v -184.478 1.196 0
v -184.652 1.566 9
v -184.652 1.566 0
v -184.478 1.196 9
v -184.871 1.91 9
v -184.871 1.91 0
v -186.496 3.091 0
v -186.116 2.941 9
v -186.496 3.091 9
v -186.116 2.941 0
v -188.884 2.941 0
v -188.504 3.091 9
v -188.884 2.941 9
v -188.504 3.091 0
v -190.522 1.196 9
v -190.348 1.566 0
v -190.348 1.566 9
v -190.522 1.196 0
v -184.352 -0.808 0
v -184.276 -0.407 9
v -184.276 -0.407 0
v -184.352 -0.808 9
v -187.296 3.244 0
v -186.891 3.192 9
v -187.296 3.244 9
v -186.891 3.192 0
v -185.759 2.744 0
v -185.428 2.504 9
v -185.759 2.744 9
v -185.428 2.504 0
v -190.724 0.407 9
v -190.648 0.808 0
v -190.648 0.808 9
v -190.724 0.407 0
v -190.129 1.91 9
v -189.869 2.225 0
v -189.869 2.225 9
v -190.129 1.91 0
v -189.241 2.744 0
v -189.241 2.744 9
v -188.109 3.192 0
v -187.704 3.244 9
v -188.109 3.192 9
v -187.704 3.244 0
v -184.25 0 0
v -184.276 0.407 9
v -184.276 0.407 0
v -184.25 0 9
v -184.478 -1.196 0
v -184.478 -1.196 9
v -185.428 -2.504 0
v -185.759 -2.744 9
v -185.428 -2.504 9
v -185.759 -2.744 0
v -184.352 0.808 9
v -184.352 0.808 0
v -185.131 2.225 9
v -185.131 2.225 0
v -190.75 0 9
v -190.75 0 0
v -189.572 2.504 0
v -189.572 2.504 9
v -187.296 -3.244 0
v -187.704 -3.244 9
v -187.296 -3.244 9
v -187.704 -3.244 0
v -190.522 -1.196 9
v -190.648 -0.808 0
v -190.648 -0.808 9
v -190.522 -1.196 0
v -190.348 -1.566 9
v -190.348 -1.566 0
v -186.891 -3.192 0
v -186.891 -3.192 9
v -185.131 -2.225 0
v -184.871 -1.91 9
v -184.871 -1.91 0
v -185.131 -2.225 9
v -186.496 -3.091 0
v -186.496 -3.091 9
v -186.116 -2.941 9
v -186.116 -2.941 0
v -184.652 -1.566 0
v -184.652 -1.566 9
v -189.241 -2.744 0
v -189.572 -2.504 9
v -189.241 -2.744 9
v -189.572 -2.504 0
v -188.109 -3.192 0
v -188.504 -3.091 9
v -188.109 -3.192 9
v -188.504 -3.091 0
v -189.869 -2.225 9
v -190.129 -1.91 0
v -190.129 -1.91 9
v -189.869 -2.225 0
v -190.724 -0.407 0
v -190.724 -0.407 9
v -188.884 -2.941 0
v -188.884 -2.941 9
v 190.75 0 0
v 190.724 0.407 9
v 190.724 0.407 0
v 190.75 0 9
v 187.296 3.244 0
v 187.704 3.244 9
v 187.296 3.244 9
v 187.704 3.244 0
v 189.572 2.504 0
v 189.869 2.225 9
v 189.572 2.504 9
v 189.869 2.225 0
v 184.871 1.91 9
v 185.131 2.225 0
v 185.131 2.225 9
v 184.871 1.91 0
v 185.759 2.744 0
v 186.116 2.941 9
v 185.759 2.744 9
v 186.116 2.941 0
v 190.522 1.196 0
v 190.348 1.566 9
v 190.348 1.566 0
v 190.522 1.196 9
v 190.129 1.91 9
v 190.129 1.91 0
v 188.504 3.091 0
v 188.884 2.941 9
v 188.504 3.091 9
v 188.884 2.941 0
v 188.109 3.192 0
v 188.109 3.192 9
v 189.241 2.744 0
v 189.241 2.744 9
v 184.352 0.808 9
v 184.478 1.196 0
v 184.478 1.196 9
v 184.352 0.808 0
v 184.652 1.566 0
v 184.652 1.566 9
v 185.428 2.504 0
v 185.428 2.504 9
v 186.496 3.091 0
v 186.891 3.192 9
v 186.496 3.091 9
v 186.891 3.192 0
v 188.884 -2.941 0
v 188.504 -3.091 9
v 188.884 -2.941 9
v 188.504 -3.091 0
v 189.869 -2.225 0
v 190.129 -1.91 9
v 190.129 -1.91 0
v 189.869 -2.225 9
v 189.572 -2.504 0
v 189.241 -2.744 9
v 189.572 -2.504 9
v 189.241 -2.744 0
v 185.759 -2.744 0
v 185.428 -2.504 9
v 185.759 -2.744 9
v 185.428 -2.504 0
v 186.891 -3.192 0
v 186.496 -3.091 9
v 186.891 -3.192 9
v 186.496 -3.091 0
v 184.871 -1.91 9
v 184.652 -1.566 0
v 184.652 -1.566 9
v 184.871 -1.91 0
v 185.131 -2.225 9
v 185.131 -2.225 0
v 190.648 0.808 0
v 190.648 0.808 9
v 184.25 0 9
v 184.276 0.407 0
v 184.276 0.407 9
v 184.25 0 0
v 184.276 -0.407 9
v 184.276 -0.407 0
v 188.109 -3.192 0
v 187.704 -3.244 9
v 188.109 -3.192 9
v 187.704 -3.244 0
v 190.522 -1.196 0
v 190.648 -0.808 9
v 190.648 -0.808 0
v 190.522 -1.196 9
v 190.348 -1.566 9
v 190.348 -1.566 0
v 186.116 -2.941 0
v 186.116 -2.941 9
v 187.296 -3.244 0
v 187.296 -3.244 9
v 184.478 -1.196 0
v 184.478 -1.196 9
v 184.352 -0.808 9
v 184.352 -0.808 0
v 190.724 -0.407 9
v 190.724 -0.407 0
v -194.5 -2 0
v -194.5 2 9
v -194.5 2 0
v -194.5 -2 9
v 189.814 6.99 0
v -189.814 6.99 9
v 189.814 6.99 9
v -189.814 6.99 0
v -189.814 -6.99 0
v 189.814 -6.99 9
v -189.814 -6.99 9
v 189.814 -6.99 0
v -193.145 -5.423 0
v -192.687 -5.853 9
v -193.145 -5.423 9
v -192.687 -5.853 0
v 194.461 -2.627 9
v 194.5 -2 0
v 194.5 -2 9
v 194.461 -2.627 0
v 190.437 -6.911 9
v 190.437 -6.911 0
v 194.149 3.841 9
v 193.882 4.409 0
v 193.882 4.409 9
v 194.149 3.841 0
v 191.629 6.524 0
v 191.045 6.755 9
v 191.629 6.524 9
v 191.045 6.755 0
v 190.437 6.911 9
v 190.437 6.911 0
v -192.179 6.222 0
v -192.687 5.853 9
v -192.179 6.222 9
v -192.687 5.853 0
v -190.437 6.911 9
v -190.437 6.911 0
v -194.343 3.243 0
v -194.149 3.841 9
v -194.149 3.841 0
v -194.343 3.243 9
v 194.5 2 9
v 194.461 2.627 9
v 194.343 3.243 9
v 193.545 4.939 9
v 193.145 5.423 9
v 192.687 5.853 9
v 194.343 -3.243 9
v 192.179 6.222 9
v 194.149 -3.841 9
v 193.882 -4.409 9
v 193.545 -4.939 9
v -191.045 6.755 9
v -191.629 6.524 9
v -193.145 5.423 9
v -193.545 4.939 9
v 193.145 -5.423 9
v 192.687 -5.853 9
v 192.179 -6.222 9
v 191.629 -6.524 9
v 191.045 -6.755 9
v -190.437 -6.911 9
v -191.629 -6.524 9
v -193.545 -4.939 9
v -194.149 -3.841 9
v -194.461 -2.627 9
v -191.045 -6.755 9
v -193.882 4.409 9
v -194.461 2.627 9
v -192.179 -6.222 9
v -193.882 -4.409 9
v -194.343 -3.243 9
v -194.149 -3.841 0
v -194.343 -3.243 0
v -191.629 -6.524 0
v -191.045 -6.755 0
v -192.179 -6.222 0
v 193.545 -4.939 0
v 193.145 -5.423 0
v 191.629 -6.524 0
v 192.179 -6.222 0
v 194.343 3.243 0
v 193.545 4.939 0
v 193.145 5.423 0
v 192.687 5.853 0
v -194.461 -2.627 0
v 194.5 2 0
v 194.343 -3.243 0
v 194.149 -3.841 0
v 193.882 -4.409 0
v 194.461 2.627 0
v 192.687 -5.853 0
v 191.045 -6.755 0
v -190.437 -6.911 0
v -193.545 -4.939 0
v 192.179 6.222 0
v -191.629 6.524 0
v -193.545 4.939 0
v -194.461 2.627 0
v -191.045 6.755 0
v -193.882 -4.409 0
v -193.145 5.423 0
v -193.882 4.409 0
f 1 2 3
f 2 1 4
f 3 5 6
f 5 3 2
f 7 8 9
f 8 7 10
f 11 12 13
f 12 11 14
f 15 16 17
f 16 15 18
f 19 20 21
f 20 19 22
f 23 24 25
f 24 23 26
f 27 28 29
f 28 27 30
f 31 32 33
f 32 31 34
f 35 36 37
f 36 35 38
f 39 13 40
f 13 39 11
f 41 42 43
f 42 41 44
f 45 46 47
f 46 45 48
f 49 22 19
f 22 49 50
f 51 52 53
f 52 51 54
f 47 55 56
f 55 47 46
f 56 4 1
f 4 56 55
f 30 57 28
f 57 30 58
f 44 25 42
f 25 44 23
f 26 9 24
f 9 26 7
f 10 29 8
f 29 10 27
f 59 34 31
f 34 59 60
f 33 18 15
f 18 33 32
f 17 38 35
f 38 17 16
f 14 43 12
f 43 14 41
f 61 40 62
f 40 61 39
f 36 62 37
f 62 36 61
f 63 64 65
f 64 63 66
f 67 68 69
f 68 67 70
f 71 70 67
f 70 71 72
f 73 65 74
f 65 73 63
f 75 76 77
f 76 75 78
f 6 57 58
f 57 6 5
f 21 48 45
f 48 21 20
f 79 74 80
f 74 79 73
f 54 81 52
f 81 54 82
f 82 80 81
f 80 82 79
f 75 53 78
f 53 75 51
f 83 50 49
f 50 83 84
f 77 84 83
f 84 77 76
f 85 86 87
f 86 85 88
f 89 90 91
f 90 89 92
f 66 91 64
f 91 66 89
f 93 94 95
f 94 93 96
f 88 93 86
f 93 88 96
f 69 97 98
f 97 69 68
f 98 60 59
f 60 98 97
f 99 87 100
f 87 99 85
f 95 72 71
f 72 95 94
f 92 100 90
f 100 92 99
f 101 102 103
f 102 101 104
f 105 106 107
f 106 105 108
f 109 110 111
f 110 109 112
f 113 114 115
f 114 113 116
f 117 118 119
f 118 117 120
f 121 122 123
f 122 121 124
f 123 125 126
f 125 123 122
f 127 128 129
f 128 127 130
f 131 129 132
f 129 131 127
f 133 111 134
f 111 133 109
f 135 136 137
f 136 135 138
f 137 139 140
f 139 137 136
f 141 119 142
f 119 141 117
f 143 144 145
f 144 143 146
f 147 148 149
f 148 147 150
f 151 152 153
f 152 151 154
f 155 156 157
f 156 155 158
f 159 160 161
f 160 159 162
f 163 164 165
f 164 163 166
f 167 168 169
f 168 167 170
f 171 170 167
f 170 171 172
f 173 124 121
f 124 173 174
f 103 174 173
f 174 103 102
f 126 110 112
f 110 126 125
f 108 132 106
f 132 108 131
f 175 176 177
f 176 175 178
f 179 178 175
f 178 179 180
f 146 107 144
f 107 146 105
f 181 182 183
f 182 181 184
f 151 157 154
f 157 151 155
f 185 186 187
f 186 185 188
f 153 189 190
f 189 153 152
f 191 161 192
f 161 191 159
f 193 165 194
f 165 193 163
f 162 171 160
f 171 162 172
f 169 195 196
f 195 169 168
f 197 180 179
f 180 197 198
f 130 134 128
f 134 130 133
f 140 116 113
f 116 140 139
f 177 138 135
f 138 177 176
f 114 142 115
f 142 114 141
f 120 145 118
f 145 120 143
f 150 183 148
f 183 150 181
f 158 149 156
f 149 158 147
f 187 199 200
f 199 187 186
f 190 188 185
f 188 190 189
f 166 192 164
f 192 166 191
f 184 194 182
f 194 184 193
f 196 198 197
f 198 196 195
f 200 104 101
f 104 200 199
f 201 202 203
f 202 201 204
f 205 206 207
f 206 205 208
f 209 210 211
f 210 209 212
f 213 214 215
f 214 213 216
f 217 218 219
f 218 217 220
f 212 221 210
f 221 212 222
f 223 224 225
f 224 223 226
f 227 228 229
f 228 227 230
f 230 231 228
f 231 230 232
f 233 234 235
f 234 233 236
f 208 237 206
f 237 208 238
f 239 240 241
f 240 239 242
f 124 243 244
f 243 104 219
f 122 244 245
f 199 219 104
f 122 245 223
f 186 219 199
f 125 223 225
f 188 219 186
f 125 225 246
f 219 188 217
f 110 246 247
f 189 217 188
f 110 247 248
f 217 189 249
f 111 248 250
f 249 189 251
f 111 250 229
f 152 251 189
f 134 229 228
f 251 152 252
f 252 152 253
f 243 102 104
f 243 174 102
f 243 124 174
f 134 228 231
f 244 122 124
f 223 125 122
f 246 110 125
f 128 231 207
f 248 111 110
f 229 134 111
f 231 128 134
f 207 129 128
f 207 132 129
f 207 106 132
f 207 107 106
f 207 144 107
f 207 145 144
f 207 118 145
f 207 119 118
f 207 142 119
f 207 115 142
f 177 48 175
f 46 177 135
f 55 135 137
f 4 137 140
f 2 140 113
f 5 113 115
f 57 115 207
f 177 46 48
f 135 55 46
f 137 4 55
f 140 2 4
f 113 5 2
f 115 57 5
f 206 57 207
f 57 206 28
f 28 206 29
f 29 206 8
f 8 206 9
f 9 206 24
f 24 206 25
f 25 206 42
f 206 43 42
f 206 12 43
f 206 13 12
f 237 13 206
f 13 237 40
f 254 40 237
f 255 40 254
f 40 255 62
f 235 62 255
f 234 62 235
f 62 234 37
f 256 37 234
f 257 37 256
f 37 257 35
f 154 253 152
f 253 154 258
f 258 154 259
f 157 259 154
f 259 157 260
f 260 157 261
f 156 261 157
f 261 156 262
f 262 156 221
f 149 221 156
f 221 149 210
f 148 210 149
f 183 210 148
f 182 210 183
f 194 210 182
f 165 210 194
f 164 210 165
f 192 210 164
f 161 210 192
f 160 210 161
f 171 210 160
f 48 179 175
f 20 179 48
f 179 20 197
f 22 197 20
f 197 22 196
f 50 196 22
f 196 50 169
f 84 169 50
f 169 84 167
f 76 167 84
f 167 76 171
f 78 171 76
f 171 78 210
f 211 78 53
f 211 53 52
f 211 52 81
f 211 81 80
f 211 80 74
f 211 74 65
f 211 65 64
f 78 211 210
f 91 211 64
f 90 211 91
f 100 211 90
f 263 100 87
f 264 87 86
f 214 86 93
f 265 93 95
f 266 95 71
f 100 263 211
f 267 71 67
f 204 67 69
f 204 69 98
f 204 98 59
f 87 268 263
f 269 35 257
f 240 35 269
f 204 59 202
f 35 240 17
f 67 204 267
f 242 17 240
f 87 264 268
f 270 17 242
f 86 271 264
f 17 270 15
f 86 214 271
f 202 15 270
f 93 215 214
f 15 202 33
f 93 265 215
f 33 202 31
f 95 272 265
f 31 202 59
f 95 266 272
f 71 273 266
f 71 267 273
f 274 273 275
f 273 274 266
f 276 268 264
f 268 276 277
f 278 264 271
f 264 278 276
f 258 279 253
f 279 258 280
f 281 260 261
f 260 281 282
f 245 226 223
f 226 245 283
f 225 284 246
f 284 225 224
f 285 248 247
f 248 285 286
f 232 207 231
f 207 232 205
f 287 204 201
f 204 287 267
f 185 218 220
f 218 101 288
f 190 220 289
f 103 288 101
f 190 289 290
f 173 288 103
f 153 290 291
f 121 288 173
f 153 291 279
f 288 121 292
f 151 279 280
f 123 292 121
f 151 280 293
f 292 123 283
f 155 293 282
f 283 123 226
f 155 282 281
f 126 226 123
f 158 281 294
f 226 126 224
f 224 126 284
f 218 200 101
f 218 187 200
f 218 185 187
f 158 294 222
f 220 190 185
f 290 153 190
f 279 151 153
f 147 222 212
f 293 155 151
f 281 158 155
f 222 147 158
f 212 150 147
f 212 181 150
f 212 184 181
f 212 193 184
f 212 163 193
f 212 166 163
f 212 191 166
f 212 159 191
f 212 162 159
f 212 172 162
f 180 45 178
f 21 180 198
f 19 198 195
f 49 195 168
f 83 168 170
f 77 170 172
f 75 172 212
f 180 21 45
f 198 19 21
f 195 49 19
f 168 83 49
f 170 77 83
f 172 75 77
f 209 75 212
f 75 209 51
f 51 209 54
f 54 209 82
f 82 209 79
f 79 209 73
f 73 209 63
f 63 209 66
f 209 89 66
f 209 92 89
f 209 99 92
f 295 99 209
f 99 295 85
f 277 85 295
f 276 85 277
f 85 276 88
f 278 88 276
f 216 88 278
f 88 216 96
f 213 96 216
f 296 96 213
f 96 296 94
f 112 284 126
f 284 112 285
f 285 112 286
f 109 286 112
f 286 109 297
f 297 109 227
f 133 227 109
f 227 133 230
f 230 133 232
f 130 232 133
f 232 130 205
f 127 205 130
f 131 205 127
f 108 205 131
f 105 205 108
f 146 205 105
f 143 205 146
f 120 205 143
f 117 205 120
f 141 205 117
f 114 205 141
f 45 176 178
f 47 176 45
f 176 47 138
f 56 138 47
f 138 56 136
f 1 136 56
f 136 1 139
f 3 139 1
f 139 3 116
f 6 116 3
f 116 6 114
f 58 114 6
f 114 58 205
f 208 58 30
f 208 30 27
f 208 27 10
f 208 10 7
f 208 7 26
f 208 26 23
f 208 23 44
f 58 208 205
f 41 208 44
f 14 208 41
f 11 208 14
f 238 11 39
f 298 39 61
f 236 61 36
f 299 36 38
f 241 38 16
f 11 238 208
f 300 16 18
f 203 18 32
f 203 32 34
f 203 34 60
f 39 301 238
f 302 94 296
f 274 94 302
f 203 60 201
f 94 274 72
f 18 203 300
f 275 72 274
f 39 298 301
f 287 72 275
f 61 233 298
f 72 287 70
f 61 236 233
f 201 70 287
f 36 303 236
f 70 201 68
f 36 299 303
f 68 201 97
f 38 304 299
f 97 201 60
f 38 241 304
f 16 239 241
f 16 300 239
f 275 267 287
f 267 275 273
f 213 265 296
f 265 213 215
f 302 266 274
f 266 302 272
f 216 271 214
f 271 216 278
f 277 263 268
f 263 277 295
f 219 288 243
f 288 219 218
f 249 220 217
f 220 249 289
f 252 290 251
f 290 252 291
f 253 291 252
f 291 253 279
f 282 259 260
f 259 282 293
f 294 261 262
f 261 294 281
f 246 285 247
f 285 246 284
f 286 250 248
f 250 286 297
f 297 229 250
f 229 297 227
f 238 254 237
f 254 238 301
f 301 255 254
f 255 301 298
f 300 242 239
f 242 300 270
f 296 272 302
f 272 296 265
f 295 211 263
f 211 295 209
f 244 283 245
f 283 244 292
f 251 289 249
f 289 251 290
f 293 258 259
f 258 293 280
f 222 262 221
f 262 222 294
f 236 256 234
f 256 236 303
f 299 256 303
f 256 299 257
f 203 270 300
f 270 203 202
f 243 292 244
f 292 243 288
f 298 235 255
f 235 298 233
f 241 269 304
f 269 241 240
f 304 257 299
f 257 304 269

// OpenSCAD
$fn = 50;


difference() {
	union() {
		hull() {
			translate(v = [-189.5000000000, 2.0000000000, 0]) {
				cylinder(h = 9, r = 5);
			}
			translate(v = [189.5000000000, 2.0000000000, 0]) {
				cylinder(h = 9, r = 5);
			}
			translate(v = [-189.5000000000, -2.0000000000, 0]) {
				cylinder(h = 9, r = 5);
			}
			translate(v = [189.5000000000, -2.0000000000, 0]) {
				cylinder(h = 9, r = 5);
			}
		}
	}
	union() {
		translate(v = [-187.5000000000, 0.0000000000, -100.0000000000]) {
			cylinder(h = 200, r = 3.2500000000);
		}
		translate(v = [-187.5000000000, 0.0000000000, -100.0000000000]) {
			cylinder(h = 200, r = 3.2500000000);
		}
		translate(v = [187.5000000000, 0.0000000000, -100.0000000000]) {
			cylinder(h = 200, r = 3.2500000000);
		}
		translate(v = [187.5000000000, 0.0000000000, -100.0000000000]) {
			cylinder(h = 200, r = 3.2500000000);
		}
	}
}
